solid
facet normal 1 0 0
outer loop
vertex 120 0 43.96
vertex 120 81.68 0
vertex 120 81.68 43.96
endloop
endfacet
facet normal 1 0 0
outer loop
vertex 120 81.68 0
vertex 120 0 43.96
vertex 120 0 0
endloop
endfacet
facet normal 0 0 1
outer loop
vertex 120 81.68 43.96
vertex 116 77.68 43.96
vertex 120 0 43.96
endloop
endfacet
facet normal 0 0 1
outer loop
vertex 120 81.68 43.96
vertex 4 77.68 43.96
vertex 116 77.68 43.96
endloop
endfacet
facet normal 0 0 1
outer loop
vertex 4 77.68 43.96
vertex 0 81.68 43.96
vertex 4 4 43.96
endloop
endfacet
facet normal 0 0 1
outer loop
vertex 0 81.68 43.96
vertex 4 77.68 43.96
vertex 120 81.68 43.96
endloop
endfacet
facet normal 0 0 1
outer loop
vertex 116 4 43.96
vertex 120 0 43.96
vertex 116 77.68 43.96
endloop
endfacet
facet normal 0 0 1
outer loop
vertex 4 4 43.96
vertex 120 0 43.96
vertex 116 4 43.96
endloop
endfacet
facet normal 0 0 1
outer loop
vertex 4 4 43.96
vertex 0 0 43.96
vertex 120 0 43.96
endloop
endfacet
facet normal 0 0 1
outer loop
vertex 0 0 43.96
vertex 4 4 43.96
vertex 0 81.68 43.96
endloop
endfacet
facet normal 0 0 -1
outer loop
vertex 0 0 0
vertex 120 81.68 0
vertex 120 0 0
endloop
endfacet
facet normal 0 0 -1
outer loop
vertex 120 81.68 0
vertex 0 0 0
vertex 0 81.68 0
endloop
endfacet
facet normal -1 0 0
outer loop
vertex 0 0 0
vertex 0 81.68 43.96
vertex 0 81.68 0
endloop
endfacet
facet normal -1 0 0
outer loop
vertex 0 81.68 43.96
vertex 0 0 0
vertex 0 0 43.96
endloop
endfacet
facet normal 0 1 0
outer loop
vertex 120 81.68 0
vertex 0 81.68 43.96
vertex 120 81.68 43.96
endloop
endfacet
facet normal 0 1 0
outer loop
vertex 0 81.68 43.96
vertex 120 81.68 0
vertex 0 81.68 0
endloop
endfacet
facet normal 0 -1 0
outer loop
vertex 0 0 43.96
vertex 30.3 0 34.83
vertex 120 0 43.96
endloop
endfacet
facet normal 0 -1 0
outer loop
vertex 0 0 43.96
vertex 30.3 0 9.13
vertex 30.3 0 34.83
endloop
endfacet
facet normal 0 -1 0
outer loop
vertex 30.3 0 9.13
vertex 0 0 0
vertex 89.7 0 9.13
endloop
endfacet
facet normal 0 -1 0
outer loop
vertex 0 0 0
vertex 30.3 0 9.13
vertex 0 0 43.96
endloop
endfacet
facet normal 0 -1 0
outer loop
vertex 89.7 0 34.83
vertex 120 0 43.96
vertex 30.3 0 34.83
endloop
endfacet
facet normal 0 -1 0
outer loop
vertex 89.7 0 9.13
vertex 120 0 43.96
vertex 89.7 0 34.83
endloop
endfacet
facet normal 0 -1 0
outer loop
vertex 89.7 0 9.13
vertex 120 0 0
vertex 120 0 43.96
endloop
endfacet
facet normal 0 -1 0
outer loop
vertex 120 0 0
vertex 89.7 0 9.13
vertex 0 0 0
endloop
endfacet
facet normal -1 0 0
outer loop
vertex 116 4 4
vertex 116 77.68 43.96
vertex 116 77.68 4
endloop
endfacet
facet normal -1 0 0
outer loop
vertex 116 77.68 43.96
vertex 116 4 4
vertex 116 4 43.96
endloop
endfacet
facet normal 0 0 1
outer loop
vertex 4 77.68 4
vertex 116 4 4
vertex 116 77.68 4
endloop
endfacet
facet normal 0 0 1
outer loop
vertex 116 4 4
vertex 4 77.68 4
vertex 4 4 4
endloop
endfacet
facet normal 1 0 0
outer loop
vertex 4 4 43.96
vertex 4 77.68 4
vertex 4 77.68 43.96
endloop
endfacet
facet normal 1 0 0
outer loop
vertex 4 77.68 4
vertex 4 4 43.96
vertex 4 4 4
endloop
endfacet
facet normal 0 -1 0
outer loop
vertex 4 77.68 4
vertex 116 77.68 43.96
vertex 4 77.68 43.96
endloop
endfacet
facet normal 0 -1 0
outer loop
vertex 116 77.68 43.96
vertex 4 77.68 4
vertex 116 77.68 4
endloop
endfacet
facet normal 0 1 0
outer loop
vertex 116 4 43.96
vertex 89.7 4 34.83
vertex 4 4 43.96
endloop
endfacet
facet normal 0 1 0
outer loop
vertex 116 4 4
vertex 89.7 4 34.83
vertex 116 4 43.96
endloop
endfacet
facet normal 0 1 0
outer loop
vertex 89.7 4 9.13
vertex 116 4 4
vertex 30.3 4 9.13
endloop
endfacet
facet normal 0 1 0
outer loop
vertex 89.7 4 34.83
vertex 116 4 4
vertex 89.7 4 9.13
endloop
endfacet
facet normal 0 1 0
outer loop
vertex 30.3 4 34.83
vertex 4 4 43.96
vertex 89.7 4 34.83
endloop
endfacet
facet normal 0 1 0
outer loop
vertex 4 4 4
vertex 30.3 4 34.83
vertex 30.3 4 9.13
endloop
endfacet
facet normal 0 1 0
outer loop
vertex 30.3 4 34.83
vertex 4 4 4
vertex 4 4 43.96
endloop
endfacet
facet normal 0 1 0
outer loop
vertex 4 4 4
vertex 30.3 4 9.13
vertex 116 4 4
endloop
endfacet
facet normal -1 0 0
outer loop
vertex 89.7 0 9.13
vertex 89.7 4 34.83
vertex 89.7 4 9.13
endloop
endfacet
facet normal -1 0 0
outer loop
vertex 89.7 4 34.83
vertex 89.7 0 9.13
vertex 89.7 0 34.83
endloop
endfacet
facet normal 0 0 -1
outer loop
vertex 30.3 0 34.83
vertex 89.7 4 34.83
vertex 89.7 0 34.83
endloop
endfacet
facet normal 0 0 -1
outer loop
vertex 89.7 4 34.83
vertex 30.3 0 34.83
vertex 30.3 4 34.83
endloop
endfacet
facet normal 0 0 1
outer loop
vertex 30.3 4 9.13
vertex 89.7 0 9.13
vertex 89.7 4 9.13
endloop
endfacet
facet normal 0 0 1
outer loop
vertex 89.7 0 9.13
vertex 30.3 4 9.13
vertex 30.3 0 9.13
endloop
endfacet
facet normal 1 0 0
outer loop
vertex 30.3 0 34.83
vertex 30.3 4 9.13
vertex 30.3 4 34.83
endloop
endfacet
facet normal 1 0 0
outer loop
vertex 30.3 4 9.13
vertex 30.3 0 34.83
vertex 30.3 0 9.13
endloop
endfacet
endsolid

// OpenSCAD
/* doodle-meta {"version":1,"parameters":{"width":{"label":"Overall width","description":"Changes the body width","unit":"mm","feature":"body_width"},"depth":{"label":"Overall depth","description":"Changes the body depth","unit":"mm","feature":"body_depth"},"height":{"label":"Overall height","description":"Changes the body height","unit":"mm","feature":"body_height"},"wall_thickness":{"label":"Wall thickness","description":"Changes the uniform wall thickness","unit":"mm","feature":"wall_thickness"},"window_width":{"label":"Window width","description":"Changes the width of the front window","unit":"mm","feature":"front_window"},"window_height":{"label":"Window height","description":"Changes the height of the front window","unit":"mm","feature":"front_window"},"window_center_z":{"label":"Window center height","description":"Changes the vertical position of the window center","unit":"mm","feature":"front_window"}},"features":{"body_width":{"kind":"dimension","axis":"x","label":"Overall width"},"body_depth":{"kind":"dimension","axis":"y","label":"Overall depth"},"body_height":{"kind":"dimension","axis":"z","label":"Overall height"},"wall_thickness":{"kind":"region","label":"Wall thickness","min":[0,0,0],"max":[{"parameter":"wall_thickness","scale":1,"offset":0},{"parameter":"wall_thickness","scale":1,"offset":0},{"parameter":"height","scale":1,"offset":0}]},"front_window":{"kind":"region","label":"Front window","min":[{"parameter":"width","scale":0.5,"offset":-0.5},{"parameter":"window_width","scale":0.5,"offset":0},{"parameter":"window_center_z","scale":1,"offset":-0.5},{"parameter":"window_height","scale":0.5,"offset":0}],"max":[{"parameter":"width","scale":0.5,"offset":0.5},{"parameter":"window_width","scale":0.5,"offset":0},{"parameter":"window_center_z","scale":1,"offset":0.5},{"parameter":"window_height","scale":0.5,"offset":0}]}}} */

// Top-level parameters (user-editable)
width = 120.0;
depth = 81.68;
height = 43.96;
wall_thickness = 4.0;
window_width = 59.4;
window_height = 25.7;
window_center_z = 21.98;

// Derived constants (not user-editable)
eps = 0.01;

// Main design
difference() {
    // Outer shell
    cube([width, depth, height], center=false);
    
    // Hollow out the interior (open top)
    translate([wall_thickness, wall_thickness, wall_thickness])
        cube([width - 2*wall_thickness, depth - 2*wall_thickness, height - wall_thickness + eps], center=false);
    
    // Front window cutout (through the front wall)
    // Front wall is at Y=0 to Y=wall_thickness
    // Window is centered in X and at window_center_z in Z
    translate([width/2 - window_width/2, -eps, window_center_z - window_height/2])
        cube([window_width, wall_thickness + 2*eps, window_height], center=false);
}
